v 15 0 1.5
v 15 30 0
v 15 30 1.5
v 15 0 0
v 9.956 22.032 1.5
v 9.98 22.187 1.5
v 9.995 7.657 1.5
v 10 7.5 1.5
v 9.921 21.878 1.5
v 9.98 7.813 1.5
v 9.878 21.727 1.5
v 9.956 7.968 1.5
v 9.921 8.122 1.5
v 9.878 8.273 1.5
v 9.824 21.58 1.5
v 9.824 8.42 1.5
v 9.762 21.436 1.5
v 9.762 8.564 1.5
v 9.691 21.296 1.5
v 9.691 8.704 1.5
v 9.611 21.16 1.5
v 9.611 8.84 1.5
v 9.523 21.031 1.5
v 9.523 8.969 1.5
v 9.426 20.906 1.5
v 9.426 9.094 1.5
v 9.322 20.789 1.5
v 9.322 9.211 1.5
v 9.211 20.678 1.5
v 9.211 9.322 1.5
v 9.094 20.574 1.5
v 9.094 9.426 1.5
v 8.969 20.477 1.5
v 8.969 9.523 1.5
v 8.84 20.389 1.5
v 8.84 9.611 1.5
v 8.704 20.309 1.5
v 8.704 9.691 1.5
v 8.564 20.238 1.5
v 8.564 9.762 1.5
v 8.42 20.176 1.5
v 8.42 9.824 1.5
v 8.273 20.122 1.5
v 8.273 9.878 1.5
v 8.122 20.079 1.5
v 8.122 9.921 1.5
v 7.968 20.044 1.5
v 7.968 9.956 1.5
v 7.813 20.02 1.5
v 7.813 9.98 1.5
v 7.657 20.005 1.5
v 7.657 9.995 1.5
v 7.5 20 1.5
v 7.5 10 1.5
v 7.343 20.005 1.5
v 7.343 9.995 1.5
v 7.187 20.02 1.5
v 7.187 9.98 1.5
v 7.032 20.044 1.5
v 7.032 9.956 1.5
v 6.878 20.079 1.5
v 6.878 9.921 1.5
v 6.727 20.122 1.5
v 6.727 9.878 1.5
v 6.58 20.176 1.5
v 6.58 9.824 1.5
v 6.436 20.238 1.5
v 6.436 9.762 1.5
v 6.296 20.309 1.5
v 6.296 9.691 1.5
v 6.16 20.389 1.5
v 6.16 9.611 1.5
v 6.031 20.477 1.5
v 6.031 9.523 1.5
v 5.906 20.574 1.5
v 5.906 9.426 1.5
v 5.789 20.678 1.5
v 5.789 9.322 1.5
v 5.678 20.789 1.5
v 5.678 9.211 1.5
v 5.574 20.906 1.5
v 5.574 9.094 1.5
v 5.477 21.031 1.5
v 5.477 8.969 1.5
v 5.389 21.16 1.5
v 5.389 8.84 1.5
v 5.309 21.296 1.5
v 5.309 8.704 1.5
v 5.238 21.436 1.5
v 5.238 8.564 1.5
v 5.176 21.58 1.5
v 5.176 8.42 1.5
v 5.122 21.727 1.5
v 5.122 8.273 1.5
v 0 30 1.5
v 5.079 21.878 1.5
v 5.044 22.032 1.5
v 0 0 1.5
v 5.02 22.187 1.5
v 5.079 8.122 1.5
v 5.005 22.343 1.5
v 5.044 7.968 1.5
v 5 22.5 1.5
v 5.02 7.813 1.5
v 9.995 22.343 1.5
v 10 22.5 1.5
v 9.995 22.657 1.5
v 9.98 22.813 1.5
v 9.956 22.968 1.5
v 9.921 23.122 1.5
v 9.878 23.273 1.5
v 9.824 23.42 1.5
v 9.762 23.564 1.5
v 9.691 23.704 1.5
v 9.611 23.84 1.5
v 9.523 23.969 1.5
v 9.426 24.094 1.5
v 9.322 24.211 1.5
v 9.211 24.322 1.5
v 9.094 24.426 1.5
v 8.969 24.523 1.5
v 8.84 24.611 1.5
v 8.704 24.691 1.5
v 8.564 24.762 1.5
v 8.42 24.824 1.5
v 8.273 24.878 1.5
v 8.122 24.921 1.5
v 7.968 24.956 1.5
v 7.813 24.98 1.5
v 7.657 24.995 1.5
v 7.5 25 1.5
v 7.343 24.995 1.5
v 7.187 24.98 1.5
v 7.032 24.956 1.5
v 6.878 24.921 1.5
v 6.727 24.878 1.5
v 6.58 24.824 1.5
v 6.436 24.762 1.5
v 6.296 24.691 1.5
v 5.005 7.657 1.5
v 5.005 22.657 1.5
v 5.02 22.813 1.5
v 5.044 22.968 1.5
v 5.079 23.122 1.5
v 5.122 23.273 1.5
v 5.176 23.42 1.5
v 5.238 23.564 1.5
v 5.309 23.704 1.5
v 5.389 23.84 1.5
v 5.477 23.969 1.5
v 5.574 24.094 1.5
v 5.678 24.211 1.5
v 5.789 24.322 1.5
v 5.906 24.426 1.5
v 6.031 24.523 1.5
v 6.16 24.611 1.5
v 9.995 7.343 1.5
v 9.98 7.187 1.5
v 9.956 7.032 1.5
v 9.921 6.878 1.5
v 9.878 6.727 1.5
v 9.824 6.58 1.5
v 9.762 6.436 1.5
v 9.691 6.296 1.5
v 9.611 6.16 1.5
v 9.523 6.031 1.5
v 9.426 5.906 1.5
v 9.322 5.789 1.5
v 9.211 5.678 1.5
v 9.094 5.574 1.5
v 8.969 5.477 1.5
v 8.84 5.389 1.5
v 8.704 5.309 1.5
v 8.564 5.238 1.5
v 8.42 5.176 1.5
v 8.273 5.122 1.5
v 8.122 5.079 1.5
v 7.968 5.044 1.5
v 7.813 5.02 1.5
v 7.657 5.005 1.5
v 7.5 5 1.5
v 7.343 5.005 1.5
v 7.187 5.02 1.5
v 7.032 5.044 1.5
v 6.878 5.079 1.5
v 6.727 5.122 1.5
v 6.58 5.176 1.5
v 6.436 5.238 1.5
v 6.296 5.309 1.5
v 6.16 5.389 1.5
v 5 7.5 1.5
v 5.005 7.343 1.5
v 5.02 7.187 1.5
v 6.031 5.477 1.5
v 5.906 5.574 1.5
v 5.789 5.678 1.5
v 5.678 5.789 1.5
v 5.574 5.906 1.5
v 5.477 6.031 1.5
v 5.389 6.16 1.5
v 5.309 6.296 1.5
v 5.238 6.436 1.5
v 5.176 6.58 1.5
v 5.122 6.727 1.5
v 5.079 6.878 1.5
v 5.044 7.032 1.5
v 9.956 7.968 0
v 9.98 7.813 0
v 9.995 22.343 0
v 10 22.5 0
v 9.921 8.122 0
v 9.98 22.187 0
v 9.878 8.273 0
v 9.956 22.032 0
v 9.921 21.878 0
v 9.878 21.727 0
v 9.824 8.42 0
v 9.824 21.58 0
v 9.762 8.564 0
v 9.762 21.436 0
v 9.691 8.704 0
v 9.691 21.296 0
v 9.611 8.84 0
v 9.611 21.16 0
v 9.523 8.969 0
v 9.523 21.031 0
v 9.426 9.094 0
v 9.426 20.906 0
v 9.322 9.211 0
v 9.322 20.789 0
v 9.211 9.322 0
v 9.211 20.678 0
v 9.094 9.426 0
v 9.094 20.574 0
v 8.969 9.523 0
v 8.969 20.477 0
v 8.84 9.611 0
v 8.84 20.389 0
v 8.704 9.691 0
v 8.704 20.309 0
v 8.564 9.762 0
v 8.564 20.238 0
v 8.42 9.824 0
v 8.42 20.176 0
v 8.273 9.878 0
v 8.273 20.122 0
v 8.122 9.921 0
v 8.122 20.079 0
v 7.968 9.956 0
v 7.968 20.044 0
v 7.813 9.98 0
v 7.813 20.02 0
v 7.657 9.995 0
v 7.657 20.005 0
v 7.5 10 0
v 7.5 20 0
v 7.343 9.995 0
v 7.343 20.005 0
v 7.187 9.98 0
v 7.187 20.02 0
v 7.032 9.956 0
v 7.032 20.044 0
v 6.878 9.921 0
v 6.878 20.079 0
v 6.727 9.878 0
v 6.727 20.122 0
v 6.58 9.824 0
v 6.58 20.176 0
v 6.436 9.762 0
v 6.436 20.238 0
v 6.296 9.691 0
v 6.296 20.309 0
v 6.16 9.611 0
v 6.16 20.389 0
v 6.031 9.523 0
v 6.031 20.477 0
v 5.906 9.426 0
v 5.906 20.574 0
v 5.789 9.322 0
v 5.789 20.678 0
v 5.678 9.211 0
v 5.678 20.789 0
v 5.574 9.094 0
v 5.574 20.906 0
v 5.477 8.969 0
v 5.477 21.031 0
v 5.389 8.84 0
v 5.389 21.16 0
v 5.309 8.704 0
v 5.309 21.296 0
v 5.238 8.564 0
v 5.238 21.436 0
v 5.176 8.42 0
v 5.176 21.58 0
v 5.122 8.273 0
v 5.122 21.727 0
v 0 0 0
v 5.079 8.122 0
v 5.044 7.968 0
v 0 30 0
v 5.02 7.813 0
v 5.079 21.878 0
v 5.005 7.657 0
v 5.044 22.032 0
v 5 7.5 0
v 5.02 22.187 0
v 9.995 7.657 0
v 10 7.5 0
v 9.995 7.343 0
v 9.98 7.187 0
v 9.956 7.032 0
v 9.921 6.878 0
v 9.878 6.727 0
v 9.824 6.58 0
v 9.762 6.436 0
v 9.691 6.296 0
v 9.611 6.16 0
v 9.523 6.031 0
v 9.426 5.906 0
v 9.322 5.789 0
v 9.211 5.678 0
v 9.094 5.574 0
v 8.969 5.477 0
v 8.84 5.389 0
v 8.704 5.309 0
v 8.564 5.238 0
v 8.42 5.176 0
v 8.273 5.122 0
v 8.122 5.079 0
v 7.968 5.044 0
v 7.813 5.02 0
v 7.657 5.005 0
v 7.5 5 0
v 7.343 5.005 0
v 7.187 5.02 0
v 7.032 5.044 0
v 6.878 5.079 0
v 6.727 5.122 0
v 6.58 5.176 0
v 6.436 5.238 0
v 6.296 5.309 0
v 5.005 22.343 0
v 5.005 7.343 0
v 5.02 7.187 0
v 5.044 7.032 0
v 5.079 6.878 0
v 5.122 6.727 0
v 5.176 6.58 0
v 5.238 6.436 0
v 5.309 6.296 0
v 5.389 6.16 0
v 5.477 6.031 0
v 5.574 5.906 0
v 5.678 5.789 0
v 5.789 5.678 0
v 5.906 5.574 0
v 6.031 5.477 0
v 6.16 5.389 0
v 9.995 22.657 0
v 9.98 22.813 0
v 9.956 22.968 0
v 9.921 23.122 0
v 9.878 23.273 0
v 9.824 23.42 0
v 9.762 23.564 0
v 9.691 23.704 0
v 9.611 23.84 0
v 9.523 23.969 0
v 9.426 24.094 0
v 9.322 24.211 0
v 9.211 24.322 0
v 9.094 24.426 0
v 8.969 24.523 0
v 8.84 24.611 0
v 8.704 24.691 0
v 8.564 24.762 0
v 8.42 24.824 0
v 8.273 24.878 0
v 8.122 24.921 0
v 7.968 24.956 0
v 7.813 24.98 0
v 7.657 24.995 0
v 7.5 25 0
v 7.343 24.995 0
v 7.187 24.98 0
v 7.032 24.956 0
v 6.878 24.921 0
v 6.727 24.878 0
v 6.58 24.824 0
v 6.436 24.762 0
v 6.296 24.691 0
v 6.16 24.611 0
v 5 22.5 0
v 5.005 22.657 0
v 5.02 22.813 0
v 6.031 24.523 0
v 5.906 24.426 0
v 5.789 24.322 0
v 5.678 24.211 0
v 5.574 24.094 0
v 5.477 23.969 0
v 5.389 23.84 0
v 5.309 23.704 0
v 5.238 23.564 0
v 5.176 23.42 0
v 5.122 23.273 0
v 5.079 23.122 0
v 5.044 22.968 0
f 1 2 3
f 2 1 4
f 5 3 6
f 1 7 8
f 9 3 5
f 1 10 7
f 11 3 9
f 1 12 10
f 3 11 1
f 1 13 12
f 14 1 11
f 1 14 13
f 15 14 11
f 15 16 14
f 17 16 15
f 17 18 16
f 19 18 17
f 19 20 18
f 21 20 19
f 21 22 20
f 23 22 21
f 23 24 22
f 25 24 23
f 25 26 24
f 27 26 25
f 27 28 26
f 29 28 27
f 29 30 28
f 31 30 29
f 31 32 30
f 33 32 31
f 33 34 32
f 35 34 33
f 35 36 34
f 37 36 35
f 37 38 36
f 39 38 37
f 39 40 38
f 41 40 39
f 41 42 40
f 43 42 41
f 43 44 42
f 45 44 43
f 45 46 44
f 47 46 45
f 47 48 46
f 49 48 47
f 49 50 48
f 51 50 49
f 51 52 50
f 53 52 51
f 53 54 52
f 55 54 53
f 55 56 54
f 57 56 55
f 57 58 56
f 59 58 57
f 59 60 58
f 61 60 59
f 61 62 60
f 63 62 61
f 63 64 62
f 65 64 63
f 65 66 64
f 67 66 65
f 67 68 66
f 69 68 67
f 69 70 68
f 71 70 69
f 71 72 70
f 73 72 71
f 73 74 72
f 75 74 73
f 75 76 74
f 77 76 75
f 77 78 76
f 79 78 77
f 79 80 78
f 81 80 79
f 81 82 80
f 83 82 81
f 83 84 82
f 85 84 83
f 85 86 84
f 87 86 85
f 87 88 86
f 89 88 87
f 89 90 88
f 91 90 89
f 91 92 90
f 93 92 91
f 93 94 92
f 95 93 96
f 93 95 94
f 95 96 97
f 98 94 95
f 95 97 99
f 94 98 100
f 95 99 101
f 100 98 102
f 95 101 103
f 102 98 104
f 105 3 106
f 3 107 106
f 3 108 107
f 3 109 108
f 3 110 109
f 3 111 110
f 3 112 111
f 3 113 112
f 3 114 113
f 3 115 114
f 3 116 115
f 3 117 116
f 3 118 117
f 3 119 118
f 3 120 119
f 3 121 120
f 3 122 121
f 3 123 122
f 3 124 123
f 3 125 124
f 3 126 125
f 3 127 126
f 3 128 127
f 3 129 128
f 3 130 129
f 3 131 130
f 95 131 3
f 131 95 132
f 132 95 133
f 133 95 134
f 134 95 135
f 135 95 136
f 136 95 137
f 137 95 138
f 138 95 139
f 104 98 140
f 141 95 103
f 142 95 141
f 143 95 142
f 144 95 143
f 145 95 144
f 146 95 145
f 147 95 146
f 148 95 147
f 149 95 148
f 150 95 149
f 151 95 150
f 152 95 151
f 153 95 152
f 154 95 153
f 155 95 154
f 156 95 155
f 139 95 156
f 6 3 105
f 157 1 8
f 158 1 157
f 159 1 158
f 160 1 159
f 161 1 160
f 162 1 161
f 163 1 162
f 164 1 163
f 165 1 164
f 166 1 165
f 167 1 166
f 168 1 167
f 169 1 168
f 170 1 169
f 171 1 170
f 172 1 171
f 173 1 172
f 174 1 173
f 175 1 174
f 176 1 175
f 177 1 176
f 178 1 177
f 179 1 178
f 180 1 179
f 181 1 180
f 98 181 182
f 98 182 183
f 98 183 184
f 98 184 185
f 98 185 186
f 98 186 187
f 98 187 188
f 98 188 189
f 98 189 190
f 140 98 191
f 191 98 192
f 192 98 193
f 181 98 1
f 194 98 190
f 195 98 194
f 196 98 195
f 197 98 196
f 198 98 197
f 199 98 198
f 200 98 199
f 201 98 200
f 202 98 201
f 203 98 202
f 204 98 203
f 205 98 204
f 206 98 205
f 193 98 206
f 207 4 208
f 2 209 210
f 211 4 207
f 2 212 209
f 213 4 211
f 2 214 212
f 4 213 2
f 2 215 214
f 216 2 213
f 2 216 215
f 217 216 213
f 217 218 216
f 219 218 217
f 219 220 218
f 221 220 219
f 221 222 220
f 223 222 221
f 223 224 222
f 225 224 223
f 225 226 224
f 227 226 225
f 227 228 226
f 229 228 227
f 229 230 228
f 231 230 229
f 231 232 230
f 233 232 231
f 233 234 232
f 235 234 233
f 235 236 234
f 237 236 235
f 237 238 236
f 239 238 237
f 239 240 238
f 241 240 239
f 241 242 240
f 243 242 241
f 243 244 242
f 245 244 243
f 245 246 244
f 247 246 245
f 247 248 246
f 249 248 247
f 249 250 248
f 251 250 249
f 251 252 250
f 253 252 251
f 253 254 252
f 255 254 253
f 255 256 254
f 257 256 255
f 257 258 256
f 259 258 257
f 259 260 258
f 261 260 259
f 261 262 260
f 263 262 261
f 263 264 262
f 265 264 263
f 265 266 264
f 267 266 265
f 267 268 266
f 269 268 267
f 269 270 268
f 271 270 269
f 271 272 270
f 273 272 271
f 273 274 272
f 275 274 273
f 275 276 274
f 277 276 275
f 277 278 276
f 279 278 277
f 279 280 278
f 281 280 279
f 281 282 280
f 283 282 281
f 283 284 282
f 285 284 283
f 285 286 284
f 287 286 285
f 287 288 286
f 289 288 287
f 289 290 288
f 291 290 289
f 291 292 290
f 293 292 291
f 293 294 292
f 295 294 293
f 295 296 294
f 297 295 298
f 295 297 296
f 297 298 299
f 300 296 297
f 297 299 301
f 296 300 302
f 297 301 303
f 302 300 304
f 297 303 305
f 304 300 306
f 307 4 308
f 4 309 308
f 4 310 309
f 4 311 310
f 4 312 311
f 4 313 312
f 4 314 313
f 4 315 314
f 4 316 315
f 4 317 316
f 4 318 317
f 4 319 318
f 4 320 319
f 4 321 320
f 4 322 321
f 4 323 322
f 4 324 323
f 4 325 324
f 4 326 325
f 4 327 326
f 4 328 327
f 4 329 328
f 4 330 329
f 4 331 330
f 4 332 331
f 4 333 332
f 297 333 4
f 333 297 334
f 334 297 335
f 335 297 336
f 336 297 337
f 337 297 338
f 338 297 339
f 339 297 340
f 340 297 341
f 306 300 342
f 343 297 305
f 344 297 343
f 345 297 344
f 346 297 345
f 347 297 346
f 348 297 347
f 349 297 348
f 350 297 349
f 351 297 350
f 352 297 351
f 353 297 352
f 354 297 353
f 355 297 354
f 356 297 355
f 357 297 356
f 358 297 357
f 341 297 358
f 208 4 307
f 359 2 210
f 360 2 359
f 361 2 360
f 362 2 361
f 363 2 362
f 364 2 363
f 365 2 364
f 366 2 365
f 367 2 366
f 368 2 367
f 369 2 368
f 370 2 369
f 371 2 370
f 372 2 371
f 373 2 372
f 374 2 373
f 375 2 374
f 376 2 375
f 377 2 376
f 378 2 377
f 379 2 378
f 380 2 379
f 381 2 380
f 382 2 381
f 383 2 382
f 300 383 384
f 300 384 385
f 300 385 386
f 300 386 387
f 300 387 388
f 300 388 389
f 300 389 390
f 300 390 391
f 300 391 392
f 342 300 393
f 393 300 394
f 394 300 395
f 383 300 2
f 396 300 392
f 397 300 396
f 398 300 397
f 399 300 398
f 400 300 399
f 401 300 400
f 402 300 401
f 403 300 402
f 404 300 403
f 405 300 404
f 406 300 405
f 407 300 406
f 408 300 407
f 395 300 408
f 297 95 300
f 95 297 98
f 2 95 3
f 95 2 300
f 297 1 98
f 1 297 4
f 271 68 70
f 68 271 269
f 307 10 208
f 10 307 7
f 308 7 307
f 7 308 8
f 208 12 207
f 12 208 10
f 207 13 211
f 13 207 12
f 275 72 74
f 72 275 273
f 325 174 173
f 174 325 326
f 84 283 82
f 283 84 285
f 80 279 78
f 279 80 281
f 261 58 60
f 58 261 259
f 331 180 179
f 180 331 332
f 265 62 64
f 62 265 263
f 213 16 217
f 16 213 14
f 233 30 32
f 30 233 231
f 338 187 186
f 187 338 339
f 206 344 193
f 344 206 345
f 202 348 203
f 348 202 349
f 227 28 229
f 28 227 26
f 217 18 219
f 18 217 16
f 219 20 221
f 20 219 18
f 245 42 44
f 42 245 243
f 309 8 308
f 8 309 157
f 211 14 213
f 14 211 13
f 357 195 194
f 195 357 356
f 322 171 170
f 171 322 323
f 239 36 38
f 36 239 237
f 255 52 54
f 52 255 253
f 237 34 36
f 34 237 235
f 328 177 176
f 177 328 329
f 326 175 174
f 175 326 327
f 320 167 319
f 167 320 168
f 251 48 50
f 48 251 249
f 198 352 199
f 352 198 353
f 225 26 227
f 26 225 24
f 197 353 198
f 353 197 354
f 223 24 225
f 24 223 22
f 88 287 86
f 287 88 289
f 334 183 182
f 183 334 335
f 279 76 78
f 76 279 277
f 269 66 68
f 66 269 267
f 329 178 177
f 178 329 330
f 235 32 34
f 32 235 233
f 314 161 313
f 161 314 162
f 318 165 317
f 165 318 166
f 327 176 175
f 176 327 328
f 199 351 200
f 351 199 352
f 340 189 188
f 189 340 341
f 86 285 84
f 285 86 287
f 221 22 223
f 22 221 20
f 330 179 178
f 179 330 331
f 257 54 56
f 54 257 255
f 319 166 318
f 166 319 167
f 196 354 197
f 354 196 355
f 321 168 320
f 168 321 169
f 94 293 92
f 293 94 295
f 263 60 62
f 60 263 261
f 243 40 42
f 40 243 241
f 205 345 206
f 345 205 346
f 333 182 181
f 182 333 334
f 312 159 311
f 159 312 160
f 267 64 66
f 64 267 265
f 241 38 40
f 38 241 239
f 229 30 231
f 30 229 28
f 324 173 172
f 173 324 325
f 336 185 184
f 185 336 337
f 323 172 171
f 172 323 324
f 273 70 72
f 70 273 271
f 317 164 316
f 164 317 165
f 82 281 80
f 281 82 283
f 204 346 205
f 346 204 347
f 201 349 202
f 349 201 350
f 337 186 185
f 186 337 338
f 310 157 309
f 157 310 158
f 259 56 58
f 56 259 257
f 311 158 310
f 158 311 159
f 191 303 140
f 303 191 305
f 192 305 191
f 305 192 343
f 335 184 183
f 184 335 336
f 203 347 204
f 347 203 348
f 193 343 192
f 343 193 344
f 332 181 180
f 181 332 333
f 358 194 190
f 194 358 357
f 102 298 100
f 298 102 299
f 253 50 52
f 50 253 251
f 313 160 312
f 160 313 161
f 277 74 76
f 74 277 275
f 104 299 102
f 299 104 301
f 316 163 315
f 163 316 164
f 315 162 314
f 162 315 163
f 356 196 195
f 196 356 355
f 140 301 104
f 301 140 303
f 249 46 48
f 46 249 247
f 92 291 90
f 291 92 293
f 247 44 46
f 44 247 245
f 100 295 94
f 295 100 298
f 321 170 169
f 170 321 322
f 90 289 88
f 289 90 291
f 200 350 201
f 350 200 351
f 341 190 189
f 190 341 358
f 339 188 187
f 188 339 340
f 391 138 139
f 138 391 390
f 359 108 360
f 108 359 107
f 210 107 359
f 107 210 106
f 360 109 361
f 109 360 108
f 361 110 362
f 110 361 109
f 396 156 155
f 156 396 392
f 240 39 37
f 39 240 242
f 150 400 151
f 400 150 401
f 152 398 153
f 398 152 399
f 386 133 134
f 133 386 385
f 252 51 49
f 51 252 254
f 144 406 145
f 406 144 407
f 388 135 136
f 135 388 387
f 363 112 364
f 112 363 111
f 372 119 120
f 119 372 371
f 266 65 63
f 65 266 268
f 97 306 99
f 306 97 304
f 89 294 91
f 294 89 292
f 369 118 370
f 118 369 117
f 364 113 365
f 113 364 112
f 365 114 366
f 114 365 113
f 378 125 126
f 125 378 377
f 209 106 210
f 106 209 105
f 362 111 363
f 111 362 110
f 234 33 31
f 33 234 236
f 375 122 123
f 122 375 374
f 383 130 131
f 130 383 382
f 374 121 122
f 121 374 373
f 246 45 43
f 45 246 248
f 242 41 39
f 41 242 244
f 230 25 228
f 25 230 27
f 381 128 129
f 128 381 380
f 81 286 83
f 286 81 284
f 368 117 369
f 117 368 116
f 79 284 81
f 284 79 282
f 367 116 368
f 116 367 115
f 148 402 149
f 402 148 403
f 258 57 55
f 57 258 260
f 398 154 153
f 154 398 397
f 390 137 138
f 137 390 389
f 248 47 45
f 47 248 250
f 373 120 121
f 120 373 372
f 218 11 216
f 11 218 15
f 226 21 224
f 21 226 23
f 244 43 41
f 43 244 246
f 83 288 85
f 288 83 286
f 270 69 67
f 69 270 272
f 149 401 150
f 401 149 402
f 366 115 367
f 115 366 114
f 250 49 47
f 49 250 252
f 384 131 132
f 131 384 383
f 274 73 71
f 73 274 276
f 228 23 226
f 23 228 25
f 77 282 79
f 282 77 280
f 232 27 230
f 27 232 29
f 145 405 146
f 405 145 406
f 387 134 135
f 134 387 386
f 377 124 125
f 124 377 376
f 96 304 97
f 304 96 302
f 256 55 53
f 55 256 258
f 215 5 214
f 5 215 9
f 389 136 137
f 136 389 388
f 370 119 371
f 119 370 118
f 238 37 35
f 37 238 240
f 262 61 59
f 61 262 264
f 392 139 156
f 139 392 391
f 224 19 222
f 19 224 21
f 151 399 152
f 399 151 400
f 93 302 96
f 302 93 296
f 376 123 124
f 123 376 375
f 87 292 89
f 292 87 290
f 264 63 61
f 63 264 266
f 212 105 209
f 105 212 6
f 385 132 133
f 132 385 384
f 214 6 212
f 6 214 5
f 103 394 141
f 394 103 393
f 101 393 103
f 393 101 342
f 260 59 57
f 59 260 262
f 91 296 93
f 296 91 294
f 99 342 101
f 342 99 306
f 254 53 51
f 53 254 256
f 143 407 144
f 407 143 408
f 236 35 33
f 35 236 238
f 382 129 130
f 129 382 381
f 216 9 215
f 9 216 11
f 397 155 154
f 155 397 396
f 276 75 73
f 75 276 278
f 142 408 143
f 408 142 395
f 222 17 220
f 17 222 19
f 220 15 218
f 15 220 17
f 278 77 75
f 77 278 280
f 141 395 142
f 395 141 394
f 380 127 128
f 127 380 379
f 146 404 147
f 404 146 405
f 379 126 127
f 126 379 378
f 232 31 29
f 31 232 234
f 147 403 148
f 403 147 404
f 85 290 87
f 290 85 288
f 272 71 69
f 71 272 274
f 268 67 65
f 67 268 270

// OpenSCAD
$fn=100;
cut = 100;


difference() {
    cube([15, 30, 1.5]);
    translate([15/2, 7.5, 0]) cylinder(d=5, h=cut, center=true);
    translate([15/2, 30-7.5, 0]) cylinder(d=5, h=cut, center=true);
}
